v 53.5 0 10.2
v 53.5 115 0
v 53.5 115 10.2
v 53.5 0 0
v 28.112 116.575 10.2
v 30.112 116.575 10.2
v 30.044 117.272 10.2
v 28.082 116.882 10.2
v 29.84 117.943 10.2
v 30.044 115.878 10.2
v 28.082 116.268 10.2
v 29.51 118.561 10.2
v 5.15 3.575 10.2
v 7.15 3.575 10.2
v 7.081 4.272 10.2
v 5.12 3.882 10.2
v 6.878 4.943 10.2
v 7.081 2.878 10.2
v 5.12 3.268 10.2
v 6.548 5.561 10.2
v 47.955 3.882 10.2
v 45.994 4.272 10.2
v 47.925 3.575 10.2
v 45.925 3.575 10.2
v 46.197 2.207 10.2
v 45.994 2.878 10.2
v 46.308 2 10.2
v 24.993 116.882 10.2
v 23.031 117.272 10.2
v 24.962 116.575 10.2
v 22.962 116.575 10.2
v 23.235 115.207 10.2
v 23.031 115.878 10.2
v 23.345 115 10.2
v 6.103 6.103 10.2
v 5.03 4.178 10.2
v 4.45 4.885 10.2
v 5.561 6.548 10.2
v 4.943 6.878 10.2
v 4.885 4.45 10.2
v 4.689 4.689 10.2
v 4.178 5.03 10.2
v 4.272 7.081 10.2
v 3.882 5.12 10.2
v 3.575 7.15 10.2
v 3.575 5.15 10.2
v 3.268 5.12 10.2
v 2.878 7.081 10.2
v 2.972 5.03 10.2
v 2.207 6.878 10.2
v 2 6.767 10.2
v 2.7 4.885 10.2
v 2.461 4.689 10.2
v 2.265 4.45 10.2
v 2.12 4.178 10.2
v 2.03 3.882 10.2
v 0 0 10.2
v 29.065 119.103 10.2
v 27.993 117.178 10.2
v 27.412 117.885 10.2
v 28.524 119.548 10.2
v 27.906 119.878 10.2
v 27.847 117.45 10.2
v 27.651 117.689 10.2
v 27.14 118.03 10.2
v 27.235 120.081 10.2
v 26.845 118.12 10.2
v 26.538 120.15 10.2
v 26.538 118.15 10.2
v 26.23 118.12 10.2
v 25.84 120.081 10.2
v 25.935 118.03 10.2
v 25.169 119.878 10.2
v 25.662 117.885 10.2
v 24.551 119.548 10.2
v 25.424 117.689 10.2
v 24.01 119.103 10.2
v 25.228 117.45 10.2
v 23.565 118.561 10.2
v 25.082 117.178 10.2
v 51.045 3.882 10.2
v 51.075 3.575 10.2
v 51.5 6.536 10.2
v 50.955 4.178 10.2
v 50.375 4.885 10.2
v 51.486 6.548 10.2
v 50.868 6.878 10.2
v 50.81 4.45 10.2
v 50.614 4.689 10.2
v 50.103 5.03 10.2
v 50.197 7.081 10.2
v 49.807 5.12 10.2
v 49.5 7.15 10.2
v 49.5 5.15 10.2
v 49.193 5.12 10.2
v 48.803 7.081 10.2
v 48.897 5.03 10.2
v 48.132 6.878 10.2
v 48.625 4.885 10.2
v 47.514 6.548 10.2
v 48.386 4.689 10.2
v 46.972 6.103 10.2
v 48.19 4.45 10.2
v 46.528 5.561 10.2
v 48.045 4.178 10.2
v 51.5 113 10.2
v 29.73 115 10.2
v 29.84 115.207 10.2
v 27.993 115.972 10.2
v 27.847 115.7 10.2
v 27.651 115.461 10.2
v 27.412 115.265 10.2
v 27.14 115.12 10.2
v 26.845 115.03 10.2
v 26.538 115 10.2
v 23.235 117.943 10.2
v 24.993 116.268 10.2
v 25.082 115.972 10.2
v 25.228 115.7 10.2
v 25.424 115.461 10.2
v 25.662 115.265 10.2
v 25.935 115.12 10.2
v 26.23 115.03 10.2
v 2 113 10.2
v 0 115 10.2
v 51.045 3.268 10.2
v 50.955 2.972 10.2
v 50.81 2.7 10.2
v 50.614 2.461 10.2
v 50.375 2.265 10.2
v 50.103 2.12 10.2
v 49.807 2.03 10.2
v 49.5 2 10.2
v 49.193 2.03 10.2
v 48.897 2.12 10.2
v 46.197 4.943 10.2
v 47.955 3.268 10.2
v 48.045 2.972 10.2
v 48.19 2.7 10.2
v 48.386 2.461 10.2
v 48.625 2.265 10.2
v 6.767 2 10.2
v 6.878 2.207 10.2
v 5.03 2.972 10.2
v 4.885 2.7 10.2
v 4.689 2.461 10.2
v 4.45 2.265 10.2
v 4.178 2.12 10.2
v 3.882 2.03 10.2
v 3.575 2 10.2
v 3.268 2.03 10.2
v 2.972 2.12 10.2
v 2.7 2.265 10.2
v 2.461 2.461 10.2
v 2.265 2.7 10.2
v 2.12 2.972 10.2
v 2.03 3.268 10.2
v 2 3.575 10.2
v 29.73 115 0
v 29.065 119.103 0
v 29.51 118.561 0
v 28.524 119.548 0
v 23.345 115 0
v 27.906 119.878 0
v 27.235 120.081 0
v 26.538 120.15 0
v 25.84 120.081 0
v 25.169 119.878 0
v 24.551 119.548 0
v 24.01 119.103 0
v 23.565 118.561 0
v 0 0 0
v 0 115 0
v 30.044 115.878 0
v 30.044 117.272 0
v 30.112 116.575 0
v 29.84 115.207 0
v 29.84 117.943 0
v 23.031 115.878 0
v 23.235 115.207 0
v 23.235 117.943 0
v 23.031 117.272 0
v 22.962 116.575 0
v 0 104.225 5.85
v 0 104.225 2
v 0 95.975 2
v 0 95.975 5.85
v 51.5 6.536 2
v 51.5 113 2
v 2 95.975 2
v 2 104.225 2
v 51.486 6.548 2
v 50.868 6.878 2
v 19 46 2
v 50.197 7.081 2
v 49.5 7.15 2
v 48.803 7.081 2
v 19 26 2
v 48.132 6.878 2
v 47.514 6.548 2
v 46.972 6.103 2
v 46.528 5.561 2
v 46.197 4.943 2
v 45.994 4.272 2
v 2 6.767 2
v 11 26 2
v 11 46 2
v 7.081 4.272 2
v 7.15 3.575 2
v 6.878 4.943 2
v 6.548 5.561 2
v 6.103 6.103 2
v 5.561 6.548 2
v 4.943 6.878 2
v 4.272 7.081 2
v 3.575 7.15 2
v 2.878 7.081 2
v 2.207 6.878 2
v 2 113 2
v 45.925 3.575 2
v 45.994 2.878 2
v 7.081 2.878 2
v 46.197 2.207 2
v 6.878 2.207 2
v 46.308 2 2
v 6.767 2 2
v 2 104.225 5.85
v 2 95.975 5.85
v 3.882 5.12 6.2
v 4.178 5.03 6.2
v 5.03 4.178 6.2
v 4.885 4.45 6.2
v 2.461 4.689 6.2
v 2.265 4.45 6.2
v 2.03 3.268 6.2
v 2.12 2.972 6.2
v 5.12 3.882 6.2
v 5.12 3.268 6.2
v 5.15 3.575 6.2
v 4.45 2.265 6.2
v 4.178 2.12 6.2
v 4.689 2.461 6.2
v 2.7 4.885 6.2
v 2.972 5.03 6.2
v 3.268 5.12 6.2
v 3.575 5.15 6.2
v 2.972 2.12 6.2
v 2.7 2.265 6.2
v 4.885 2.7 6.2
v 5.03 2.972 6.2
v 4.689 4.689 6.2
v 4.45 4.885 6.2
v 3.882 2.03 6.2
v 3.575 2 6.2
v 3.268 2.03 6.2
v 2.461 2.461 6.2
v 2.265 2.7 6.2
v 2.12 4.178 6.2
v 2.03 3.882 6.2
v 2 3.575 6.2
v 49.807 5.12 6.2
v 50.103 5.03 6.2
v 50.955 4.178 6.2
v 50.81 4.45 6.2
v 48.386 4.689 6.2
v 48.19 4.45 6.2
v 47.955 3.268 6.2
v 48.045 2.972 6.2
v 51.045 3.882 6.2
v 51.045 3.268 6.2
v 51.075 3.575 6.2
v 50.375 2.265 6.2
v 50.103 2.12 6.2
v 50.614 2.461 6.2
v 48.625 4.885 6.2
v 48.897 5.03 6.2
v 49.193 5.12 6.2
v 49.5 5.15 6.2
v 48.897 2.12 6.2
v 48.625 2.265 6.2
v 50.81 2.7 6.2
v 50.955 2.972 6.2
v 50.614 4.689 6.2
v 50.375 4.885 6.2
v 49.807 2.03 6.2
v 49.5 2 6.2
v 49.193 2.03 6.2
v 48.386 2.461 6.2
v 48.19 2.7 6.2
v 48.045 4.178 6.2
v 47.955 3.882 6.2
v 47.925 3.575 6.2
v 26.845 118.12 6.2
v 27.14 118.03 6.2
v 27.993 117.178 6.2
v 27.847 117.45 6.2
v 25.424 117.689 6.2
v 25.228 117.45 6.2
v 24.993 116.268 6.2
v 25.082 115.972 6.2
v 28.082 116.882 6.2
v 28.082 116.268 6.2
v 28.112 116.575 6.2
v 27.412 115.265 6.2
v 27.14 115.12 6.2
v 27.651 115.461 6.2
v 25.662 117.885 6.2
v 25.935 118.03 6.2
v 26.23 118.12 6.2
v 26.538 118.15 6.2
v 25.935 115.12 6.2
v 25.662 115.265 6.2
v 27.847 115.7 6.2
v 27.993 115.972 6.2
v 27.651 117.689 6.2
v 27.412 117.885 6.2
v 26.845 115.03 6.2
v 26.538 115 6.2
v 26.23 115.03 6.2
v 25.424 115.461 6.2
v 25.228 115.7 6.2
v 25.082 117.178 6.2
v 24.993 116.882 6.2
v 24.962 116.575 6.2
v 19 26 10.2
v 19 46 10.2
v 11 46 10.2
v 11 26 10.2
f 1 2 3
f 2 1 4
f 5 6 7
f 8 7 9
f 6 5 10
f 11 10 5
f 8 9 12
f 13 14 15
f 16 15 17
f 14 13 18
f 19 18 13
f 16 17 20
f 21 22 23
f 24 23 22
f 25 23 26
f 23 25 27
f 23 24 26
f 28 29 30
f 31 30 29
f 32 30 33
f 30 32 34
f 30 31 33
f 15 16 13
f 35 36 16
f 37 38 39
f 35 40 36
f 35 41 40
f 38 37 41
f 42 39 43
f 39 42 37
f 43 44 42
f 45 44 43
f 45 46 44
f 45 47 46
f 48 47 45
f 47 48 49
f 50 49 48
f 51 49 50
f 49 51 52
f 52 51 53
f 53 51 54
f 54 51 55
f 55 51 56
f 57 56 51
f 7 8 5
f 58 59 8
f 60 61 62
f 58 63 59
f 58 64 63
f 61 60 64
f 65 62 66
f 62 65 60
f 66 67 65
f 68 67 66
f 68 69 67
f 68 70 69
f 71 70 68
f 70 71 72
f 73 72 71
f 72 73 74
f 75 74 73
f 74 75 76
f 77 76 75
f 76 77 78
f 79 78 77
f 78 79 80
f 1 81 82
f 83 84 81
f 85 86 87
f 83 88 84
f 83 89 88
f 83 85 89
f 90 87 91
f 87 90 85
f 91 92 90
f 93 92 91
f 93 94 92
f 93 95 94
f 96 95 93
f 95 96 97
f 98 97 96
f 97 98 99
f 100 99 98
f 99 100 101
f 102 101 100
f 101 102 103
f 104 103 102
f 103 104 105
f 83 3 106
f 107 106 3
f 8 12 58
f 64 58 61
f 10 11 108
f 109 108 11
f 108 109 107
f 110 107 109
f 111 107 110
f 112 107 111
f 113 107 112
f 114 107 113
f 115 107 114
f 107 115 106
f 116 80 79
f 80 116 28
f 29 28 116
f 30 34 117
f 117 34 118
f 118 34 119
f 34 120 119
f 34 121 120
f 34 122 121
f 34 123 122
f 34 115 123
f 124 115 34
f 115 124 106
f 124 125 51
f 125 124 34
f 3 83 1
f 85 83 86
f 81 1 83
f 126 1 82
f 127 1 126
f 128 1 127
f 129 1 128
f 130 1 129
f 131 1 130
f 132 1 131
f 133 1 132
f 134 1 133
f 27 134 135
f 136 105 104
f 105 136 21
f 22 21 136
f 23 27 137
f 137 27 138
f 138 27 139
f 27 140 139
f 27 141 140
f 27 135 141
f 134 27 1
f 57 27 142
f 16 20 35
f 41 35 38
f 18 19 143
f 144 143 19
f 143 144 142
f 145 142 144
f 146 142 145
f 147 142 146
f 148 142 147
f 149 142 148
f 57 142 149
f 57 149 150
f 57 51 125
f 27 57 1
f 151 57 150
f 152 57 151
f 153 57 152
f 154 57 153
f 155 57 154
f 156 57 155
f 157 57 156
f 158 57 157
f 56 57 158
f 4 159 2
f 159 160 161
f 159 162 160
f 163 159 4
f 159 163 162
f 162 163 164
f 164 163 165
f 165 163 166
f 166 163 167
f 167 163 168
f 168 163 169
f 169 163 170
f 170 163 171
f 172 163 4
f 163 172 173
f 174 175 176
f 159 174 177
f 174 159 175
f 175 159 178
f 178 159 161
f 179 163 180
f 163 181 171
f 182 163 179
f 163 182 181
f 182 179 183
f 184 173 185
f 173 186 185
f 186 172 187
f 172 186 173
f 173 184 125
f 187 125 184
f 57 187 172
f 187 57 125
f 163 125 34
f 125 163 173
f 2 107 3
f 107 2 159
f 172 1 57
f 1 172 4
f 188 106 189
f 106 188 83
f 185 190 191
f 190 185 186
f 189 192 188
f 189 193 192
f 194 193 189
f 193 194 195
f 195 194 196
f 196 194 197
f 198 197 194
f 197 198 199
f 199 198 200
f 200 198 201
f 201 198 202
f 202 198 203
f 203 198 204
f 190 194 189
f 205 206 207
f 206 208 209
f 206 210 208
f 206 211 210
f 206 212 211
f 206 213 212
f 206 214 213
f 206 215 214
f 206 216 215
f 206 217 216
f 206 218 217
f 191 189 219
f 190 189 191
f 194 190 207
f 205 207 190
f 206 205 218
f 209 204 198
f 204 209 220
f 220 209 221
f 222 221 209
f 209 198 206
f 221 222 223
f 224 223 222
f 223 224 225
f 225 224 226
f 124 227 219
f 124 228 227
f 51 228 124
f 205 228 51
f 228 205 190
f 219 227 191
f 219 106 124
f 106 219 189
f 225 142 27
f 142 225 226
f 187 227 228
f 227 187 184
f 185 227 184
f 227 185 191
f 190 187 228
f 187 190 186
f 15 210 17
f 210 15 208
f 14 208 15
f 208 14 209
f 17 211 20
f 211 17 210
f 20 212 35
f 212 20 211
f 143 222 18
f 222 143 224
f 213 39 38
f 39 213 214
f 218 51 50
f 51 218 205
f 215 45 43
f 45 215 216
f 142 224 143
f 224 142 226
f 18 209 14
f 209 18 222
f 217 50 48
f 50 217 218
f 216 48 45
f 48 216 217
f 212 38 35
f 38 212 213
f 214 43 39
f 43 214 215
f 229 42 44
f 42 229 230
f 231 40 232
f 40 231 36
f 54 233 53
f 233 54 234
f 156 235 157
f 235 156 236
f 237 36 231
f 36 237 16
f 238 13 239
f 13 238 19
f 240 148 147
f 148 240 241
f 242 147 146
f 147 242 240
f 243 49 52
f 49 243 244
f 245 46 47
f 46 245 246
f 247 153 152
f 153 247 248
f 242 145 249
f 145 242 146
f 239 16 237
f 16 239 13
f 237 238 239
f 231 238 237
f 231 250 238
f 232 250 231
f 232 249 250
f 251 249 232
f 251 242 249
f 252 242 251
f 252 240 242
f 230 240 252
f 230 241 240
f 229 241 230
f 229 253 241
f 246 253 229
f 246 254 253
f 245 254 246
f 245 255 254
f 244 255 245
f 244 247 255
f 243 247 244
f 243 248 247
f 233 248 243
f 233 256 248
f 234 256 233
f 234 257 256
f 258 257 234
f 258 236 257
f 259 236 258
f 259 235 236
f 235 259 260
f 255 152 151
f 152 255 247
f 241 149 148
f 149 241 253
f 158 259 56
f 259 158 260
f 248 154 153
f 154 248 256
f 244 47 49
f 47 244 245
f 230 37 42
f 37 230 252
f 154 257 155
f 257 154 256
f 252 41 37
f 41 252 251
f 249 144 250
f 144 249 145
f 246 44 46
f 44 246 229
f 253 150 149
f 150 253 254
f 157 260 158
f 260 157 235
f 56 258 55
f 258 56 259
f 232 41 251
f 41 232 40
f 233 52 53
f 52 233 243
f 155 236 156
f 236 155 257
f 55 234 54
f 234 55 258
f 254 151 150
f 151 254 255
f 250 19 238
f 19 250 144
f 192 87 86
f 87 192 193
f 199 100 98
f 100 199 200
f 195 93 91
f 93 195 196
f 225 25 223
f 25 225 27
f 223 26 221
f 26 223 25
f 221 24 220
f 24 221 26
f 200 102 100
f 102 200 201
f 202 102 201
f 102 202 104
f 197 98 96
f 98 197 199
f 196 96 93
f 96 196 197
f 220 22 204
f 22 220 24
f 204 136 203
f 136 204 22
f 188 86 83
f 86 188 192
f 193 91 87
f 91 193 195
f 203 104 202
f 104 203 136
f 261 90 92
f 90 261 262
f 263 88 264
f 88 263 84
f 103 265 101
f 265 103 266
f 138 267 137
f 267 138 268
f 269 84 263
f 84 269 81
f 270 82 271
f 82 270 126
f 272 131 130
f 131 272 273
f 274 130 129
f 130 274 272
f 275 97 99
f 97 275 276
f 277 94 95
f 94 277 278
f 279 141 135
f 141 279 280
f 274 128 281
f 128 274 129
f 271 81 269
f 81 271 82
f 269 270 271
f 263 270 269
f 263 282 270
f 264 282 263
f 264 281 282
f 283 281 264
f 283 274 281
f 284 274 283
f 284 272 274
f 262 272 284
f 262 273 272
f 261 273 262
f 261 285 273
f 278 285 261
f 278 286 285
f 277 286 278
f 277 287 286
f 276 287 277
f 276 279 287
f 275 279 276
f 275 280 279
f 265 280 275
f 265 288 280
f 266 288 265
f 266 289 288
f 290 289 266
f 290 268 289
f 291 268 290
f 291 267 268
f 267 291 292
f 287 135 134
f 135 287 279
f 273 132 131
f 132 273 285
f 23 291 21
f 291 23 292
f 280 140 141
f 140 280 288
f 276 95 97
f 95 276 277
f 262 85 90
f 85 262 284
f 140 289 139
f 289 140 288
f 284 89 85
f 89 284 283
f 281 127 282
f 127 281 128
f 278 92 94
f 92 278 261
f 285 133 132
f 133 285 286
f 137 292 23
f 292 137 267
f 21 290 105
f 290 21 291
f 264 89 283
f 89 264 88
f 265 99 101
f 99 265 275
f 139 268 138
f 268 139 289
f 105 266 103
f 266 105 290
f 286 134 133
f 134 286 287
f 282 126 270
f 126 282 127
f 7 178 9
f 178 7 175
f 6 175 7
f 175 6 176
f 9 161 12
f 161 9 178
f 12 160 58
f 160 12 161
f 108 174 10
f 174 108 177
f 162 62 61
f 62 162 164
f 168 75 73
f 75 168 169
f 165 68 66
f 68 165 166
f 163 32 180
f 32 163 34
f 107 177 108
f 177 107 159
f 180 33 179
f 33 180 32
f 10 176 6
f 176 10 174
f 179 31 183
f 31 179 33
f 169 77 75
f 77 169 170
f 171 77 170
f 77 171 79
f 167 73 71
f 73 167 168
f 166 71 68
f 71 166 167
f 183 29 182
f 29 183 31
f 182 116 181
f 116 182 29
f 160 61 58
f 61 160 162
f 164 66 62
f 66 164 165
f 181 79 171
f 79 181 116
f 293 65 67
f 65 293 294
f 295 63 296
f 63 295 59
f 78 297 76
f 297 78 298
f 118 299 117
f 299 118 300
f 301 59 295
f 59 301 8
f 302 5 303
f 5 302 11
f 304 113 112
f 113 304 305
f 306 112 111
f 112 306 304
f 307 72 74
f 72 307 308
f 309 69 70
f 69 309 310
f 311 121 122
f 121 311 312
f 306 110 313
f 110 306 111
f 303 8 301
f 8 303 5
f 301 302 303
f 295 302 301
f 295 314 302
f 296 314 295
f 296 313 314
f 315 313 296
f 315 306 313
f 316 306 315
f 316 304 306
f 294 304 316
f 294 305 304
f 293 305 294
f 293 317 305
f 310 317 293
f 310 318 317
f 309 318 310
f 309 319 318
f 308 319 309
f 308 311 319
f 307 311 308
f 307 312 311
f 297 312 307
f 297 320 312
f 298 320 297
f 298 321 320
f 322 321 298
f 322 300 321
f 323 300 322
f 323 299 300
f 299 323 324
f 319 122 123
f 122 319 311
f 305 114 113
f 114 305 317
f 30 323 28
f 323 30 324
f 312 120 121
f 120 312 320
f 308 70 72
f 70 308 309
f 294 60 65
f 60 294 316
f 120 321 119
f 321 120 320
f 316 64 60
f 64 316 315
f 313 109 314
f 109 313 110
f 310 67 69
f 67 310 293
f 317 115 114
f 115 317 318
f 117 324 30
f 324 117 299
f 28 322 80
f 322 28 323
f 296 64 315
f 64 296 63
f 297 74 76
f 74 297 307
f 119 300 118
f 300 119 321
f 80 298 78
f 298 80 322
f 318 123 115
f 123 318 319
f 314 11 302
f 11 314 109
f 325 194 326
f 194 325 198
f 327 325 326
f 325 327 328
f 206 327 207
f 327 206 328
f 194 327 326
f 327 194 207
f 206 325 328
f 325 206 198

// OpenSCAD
// file: measurements.scad
wall_thickness = 2;

box_internal_width = 49.5;
box_internal_length = 111;
box_internal_height = 8.2;

insert_diameter = 3.15;
insert_length = 4;
bolt_diameter = 2;

insert_post_d = insert_diameter+wall_thickness*2;
// main file
$fn = 32;

include <measurements.scad>

main();

module insert_post()
{
    difference()
    {
        cylinder(h=box_internal_height+wall_thickness, d=insert_diameter+wall_thickness*2);
        translate([0,0,(box_internal_height+wall_thickness)-insert_length]) cylinder(h=insert_length, d=insert_diameter);
    }
}

module main()
{
    translate([insert_post_d/2,insert_post_d/2,0]) insert_post();
    translate([box_internal_width,insert_post_d/2,0]) insert_post();

    translate([box_internal_width/2+insert_post_d/4,insert_post_d/2+box_internal_length+wall_thickness,0]) insert_post();

    translate([wall_thickness+9, wall_thickness+(44-20), 0]) cube([8,20,box_internal_height+wall_thickness]);

    difference()
    {
        cube([box_internal_width+wall_thickness*2, box_internal_length+wall_thickness*2, box_internal_height+wall_thickness]);
        translate([wall_thickness,wall_thickness,wall_thickness]) cube([box_internal_width, box_internal_length, box_internal_height]);
        translate([0, wall_thickness+box_internal_length - 8.25  -(25.8-8.25)/2, wall_thickness]) cube([wall_thickness, 8.25, 3.85]);
    }
}
